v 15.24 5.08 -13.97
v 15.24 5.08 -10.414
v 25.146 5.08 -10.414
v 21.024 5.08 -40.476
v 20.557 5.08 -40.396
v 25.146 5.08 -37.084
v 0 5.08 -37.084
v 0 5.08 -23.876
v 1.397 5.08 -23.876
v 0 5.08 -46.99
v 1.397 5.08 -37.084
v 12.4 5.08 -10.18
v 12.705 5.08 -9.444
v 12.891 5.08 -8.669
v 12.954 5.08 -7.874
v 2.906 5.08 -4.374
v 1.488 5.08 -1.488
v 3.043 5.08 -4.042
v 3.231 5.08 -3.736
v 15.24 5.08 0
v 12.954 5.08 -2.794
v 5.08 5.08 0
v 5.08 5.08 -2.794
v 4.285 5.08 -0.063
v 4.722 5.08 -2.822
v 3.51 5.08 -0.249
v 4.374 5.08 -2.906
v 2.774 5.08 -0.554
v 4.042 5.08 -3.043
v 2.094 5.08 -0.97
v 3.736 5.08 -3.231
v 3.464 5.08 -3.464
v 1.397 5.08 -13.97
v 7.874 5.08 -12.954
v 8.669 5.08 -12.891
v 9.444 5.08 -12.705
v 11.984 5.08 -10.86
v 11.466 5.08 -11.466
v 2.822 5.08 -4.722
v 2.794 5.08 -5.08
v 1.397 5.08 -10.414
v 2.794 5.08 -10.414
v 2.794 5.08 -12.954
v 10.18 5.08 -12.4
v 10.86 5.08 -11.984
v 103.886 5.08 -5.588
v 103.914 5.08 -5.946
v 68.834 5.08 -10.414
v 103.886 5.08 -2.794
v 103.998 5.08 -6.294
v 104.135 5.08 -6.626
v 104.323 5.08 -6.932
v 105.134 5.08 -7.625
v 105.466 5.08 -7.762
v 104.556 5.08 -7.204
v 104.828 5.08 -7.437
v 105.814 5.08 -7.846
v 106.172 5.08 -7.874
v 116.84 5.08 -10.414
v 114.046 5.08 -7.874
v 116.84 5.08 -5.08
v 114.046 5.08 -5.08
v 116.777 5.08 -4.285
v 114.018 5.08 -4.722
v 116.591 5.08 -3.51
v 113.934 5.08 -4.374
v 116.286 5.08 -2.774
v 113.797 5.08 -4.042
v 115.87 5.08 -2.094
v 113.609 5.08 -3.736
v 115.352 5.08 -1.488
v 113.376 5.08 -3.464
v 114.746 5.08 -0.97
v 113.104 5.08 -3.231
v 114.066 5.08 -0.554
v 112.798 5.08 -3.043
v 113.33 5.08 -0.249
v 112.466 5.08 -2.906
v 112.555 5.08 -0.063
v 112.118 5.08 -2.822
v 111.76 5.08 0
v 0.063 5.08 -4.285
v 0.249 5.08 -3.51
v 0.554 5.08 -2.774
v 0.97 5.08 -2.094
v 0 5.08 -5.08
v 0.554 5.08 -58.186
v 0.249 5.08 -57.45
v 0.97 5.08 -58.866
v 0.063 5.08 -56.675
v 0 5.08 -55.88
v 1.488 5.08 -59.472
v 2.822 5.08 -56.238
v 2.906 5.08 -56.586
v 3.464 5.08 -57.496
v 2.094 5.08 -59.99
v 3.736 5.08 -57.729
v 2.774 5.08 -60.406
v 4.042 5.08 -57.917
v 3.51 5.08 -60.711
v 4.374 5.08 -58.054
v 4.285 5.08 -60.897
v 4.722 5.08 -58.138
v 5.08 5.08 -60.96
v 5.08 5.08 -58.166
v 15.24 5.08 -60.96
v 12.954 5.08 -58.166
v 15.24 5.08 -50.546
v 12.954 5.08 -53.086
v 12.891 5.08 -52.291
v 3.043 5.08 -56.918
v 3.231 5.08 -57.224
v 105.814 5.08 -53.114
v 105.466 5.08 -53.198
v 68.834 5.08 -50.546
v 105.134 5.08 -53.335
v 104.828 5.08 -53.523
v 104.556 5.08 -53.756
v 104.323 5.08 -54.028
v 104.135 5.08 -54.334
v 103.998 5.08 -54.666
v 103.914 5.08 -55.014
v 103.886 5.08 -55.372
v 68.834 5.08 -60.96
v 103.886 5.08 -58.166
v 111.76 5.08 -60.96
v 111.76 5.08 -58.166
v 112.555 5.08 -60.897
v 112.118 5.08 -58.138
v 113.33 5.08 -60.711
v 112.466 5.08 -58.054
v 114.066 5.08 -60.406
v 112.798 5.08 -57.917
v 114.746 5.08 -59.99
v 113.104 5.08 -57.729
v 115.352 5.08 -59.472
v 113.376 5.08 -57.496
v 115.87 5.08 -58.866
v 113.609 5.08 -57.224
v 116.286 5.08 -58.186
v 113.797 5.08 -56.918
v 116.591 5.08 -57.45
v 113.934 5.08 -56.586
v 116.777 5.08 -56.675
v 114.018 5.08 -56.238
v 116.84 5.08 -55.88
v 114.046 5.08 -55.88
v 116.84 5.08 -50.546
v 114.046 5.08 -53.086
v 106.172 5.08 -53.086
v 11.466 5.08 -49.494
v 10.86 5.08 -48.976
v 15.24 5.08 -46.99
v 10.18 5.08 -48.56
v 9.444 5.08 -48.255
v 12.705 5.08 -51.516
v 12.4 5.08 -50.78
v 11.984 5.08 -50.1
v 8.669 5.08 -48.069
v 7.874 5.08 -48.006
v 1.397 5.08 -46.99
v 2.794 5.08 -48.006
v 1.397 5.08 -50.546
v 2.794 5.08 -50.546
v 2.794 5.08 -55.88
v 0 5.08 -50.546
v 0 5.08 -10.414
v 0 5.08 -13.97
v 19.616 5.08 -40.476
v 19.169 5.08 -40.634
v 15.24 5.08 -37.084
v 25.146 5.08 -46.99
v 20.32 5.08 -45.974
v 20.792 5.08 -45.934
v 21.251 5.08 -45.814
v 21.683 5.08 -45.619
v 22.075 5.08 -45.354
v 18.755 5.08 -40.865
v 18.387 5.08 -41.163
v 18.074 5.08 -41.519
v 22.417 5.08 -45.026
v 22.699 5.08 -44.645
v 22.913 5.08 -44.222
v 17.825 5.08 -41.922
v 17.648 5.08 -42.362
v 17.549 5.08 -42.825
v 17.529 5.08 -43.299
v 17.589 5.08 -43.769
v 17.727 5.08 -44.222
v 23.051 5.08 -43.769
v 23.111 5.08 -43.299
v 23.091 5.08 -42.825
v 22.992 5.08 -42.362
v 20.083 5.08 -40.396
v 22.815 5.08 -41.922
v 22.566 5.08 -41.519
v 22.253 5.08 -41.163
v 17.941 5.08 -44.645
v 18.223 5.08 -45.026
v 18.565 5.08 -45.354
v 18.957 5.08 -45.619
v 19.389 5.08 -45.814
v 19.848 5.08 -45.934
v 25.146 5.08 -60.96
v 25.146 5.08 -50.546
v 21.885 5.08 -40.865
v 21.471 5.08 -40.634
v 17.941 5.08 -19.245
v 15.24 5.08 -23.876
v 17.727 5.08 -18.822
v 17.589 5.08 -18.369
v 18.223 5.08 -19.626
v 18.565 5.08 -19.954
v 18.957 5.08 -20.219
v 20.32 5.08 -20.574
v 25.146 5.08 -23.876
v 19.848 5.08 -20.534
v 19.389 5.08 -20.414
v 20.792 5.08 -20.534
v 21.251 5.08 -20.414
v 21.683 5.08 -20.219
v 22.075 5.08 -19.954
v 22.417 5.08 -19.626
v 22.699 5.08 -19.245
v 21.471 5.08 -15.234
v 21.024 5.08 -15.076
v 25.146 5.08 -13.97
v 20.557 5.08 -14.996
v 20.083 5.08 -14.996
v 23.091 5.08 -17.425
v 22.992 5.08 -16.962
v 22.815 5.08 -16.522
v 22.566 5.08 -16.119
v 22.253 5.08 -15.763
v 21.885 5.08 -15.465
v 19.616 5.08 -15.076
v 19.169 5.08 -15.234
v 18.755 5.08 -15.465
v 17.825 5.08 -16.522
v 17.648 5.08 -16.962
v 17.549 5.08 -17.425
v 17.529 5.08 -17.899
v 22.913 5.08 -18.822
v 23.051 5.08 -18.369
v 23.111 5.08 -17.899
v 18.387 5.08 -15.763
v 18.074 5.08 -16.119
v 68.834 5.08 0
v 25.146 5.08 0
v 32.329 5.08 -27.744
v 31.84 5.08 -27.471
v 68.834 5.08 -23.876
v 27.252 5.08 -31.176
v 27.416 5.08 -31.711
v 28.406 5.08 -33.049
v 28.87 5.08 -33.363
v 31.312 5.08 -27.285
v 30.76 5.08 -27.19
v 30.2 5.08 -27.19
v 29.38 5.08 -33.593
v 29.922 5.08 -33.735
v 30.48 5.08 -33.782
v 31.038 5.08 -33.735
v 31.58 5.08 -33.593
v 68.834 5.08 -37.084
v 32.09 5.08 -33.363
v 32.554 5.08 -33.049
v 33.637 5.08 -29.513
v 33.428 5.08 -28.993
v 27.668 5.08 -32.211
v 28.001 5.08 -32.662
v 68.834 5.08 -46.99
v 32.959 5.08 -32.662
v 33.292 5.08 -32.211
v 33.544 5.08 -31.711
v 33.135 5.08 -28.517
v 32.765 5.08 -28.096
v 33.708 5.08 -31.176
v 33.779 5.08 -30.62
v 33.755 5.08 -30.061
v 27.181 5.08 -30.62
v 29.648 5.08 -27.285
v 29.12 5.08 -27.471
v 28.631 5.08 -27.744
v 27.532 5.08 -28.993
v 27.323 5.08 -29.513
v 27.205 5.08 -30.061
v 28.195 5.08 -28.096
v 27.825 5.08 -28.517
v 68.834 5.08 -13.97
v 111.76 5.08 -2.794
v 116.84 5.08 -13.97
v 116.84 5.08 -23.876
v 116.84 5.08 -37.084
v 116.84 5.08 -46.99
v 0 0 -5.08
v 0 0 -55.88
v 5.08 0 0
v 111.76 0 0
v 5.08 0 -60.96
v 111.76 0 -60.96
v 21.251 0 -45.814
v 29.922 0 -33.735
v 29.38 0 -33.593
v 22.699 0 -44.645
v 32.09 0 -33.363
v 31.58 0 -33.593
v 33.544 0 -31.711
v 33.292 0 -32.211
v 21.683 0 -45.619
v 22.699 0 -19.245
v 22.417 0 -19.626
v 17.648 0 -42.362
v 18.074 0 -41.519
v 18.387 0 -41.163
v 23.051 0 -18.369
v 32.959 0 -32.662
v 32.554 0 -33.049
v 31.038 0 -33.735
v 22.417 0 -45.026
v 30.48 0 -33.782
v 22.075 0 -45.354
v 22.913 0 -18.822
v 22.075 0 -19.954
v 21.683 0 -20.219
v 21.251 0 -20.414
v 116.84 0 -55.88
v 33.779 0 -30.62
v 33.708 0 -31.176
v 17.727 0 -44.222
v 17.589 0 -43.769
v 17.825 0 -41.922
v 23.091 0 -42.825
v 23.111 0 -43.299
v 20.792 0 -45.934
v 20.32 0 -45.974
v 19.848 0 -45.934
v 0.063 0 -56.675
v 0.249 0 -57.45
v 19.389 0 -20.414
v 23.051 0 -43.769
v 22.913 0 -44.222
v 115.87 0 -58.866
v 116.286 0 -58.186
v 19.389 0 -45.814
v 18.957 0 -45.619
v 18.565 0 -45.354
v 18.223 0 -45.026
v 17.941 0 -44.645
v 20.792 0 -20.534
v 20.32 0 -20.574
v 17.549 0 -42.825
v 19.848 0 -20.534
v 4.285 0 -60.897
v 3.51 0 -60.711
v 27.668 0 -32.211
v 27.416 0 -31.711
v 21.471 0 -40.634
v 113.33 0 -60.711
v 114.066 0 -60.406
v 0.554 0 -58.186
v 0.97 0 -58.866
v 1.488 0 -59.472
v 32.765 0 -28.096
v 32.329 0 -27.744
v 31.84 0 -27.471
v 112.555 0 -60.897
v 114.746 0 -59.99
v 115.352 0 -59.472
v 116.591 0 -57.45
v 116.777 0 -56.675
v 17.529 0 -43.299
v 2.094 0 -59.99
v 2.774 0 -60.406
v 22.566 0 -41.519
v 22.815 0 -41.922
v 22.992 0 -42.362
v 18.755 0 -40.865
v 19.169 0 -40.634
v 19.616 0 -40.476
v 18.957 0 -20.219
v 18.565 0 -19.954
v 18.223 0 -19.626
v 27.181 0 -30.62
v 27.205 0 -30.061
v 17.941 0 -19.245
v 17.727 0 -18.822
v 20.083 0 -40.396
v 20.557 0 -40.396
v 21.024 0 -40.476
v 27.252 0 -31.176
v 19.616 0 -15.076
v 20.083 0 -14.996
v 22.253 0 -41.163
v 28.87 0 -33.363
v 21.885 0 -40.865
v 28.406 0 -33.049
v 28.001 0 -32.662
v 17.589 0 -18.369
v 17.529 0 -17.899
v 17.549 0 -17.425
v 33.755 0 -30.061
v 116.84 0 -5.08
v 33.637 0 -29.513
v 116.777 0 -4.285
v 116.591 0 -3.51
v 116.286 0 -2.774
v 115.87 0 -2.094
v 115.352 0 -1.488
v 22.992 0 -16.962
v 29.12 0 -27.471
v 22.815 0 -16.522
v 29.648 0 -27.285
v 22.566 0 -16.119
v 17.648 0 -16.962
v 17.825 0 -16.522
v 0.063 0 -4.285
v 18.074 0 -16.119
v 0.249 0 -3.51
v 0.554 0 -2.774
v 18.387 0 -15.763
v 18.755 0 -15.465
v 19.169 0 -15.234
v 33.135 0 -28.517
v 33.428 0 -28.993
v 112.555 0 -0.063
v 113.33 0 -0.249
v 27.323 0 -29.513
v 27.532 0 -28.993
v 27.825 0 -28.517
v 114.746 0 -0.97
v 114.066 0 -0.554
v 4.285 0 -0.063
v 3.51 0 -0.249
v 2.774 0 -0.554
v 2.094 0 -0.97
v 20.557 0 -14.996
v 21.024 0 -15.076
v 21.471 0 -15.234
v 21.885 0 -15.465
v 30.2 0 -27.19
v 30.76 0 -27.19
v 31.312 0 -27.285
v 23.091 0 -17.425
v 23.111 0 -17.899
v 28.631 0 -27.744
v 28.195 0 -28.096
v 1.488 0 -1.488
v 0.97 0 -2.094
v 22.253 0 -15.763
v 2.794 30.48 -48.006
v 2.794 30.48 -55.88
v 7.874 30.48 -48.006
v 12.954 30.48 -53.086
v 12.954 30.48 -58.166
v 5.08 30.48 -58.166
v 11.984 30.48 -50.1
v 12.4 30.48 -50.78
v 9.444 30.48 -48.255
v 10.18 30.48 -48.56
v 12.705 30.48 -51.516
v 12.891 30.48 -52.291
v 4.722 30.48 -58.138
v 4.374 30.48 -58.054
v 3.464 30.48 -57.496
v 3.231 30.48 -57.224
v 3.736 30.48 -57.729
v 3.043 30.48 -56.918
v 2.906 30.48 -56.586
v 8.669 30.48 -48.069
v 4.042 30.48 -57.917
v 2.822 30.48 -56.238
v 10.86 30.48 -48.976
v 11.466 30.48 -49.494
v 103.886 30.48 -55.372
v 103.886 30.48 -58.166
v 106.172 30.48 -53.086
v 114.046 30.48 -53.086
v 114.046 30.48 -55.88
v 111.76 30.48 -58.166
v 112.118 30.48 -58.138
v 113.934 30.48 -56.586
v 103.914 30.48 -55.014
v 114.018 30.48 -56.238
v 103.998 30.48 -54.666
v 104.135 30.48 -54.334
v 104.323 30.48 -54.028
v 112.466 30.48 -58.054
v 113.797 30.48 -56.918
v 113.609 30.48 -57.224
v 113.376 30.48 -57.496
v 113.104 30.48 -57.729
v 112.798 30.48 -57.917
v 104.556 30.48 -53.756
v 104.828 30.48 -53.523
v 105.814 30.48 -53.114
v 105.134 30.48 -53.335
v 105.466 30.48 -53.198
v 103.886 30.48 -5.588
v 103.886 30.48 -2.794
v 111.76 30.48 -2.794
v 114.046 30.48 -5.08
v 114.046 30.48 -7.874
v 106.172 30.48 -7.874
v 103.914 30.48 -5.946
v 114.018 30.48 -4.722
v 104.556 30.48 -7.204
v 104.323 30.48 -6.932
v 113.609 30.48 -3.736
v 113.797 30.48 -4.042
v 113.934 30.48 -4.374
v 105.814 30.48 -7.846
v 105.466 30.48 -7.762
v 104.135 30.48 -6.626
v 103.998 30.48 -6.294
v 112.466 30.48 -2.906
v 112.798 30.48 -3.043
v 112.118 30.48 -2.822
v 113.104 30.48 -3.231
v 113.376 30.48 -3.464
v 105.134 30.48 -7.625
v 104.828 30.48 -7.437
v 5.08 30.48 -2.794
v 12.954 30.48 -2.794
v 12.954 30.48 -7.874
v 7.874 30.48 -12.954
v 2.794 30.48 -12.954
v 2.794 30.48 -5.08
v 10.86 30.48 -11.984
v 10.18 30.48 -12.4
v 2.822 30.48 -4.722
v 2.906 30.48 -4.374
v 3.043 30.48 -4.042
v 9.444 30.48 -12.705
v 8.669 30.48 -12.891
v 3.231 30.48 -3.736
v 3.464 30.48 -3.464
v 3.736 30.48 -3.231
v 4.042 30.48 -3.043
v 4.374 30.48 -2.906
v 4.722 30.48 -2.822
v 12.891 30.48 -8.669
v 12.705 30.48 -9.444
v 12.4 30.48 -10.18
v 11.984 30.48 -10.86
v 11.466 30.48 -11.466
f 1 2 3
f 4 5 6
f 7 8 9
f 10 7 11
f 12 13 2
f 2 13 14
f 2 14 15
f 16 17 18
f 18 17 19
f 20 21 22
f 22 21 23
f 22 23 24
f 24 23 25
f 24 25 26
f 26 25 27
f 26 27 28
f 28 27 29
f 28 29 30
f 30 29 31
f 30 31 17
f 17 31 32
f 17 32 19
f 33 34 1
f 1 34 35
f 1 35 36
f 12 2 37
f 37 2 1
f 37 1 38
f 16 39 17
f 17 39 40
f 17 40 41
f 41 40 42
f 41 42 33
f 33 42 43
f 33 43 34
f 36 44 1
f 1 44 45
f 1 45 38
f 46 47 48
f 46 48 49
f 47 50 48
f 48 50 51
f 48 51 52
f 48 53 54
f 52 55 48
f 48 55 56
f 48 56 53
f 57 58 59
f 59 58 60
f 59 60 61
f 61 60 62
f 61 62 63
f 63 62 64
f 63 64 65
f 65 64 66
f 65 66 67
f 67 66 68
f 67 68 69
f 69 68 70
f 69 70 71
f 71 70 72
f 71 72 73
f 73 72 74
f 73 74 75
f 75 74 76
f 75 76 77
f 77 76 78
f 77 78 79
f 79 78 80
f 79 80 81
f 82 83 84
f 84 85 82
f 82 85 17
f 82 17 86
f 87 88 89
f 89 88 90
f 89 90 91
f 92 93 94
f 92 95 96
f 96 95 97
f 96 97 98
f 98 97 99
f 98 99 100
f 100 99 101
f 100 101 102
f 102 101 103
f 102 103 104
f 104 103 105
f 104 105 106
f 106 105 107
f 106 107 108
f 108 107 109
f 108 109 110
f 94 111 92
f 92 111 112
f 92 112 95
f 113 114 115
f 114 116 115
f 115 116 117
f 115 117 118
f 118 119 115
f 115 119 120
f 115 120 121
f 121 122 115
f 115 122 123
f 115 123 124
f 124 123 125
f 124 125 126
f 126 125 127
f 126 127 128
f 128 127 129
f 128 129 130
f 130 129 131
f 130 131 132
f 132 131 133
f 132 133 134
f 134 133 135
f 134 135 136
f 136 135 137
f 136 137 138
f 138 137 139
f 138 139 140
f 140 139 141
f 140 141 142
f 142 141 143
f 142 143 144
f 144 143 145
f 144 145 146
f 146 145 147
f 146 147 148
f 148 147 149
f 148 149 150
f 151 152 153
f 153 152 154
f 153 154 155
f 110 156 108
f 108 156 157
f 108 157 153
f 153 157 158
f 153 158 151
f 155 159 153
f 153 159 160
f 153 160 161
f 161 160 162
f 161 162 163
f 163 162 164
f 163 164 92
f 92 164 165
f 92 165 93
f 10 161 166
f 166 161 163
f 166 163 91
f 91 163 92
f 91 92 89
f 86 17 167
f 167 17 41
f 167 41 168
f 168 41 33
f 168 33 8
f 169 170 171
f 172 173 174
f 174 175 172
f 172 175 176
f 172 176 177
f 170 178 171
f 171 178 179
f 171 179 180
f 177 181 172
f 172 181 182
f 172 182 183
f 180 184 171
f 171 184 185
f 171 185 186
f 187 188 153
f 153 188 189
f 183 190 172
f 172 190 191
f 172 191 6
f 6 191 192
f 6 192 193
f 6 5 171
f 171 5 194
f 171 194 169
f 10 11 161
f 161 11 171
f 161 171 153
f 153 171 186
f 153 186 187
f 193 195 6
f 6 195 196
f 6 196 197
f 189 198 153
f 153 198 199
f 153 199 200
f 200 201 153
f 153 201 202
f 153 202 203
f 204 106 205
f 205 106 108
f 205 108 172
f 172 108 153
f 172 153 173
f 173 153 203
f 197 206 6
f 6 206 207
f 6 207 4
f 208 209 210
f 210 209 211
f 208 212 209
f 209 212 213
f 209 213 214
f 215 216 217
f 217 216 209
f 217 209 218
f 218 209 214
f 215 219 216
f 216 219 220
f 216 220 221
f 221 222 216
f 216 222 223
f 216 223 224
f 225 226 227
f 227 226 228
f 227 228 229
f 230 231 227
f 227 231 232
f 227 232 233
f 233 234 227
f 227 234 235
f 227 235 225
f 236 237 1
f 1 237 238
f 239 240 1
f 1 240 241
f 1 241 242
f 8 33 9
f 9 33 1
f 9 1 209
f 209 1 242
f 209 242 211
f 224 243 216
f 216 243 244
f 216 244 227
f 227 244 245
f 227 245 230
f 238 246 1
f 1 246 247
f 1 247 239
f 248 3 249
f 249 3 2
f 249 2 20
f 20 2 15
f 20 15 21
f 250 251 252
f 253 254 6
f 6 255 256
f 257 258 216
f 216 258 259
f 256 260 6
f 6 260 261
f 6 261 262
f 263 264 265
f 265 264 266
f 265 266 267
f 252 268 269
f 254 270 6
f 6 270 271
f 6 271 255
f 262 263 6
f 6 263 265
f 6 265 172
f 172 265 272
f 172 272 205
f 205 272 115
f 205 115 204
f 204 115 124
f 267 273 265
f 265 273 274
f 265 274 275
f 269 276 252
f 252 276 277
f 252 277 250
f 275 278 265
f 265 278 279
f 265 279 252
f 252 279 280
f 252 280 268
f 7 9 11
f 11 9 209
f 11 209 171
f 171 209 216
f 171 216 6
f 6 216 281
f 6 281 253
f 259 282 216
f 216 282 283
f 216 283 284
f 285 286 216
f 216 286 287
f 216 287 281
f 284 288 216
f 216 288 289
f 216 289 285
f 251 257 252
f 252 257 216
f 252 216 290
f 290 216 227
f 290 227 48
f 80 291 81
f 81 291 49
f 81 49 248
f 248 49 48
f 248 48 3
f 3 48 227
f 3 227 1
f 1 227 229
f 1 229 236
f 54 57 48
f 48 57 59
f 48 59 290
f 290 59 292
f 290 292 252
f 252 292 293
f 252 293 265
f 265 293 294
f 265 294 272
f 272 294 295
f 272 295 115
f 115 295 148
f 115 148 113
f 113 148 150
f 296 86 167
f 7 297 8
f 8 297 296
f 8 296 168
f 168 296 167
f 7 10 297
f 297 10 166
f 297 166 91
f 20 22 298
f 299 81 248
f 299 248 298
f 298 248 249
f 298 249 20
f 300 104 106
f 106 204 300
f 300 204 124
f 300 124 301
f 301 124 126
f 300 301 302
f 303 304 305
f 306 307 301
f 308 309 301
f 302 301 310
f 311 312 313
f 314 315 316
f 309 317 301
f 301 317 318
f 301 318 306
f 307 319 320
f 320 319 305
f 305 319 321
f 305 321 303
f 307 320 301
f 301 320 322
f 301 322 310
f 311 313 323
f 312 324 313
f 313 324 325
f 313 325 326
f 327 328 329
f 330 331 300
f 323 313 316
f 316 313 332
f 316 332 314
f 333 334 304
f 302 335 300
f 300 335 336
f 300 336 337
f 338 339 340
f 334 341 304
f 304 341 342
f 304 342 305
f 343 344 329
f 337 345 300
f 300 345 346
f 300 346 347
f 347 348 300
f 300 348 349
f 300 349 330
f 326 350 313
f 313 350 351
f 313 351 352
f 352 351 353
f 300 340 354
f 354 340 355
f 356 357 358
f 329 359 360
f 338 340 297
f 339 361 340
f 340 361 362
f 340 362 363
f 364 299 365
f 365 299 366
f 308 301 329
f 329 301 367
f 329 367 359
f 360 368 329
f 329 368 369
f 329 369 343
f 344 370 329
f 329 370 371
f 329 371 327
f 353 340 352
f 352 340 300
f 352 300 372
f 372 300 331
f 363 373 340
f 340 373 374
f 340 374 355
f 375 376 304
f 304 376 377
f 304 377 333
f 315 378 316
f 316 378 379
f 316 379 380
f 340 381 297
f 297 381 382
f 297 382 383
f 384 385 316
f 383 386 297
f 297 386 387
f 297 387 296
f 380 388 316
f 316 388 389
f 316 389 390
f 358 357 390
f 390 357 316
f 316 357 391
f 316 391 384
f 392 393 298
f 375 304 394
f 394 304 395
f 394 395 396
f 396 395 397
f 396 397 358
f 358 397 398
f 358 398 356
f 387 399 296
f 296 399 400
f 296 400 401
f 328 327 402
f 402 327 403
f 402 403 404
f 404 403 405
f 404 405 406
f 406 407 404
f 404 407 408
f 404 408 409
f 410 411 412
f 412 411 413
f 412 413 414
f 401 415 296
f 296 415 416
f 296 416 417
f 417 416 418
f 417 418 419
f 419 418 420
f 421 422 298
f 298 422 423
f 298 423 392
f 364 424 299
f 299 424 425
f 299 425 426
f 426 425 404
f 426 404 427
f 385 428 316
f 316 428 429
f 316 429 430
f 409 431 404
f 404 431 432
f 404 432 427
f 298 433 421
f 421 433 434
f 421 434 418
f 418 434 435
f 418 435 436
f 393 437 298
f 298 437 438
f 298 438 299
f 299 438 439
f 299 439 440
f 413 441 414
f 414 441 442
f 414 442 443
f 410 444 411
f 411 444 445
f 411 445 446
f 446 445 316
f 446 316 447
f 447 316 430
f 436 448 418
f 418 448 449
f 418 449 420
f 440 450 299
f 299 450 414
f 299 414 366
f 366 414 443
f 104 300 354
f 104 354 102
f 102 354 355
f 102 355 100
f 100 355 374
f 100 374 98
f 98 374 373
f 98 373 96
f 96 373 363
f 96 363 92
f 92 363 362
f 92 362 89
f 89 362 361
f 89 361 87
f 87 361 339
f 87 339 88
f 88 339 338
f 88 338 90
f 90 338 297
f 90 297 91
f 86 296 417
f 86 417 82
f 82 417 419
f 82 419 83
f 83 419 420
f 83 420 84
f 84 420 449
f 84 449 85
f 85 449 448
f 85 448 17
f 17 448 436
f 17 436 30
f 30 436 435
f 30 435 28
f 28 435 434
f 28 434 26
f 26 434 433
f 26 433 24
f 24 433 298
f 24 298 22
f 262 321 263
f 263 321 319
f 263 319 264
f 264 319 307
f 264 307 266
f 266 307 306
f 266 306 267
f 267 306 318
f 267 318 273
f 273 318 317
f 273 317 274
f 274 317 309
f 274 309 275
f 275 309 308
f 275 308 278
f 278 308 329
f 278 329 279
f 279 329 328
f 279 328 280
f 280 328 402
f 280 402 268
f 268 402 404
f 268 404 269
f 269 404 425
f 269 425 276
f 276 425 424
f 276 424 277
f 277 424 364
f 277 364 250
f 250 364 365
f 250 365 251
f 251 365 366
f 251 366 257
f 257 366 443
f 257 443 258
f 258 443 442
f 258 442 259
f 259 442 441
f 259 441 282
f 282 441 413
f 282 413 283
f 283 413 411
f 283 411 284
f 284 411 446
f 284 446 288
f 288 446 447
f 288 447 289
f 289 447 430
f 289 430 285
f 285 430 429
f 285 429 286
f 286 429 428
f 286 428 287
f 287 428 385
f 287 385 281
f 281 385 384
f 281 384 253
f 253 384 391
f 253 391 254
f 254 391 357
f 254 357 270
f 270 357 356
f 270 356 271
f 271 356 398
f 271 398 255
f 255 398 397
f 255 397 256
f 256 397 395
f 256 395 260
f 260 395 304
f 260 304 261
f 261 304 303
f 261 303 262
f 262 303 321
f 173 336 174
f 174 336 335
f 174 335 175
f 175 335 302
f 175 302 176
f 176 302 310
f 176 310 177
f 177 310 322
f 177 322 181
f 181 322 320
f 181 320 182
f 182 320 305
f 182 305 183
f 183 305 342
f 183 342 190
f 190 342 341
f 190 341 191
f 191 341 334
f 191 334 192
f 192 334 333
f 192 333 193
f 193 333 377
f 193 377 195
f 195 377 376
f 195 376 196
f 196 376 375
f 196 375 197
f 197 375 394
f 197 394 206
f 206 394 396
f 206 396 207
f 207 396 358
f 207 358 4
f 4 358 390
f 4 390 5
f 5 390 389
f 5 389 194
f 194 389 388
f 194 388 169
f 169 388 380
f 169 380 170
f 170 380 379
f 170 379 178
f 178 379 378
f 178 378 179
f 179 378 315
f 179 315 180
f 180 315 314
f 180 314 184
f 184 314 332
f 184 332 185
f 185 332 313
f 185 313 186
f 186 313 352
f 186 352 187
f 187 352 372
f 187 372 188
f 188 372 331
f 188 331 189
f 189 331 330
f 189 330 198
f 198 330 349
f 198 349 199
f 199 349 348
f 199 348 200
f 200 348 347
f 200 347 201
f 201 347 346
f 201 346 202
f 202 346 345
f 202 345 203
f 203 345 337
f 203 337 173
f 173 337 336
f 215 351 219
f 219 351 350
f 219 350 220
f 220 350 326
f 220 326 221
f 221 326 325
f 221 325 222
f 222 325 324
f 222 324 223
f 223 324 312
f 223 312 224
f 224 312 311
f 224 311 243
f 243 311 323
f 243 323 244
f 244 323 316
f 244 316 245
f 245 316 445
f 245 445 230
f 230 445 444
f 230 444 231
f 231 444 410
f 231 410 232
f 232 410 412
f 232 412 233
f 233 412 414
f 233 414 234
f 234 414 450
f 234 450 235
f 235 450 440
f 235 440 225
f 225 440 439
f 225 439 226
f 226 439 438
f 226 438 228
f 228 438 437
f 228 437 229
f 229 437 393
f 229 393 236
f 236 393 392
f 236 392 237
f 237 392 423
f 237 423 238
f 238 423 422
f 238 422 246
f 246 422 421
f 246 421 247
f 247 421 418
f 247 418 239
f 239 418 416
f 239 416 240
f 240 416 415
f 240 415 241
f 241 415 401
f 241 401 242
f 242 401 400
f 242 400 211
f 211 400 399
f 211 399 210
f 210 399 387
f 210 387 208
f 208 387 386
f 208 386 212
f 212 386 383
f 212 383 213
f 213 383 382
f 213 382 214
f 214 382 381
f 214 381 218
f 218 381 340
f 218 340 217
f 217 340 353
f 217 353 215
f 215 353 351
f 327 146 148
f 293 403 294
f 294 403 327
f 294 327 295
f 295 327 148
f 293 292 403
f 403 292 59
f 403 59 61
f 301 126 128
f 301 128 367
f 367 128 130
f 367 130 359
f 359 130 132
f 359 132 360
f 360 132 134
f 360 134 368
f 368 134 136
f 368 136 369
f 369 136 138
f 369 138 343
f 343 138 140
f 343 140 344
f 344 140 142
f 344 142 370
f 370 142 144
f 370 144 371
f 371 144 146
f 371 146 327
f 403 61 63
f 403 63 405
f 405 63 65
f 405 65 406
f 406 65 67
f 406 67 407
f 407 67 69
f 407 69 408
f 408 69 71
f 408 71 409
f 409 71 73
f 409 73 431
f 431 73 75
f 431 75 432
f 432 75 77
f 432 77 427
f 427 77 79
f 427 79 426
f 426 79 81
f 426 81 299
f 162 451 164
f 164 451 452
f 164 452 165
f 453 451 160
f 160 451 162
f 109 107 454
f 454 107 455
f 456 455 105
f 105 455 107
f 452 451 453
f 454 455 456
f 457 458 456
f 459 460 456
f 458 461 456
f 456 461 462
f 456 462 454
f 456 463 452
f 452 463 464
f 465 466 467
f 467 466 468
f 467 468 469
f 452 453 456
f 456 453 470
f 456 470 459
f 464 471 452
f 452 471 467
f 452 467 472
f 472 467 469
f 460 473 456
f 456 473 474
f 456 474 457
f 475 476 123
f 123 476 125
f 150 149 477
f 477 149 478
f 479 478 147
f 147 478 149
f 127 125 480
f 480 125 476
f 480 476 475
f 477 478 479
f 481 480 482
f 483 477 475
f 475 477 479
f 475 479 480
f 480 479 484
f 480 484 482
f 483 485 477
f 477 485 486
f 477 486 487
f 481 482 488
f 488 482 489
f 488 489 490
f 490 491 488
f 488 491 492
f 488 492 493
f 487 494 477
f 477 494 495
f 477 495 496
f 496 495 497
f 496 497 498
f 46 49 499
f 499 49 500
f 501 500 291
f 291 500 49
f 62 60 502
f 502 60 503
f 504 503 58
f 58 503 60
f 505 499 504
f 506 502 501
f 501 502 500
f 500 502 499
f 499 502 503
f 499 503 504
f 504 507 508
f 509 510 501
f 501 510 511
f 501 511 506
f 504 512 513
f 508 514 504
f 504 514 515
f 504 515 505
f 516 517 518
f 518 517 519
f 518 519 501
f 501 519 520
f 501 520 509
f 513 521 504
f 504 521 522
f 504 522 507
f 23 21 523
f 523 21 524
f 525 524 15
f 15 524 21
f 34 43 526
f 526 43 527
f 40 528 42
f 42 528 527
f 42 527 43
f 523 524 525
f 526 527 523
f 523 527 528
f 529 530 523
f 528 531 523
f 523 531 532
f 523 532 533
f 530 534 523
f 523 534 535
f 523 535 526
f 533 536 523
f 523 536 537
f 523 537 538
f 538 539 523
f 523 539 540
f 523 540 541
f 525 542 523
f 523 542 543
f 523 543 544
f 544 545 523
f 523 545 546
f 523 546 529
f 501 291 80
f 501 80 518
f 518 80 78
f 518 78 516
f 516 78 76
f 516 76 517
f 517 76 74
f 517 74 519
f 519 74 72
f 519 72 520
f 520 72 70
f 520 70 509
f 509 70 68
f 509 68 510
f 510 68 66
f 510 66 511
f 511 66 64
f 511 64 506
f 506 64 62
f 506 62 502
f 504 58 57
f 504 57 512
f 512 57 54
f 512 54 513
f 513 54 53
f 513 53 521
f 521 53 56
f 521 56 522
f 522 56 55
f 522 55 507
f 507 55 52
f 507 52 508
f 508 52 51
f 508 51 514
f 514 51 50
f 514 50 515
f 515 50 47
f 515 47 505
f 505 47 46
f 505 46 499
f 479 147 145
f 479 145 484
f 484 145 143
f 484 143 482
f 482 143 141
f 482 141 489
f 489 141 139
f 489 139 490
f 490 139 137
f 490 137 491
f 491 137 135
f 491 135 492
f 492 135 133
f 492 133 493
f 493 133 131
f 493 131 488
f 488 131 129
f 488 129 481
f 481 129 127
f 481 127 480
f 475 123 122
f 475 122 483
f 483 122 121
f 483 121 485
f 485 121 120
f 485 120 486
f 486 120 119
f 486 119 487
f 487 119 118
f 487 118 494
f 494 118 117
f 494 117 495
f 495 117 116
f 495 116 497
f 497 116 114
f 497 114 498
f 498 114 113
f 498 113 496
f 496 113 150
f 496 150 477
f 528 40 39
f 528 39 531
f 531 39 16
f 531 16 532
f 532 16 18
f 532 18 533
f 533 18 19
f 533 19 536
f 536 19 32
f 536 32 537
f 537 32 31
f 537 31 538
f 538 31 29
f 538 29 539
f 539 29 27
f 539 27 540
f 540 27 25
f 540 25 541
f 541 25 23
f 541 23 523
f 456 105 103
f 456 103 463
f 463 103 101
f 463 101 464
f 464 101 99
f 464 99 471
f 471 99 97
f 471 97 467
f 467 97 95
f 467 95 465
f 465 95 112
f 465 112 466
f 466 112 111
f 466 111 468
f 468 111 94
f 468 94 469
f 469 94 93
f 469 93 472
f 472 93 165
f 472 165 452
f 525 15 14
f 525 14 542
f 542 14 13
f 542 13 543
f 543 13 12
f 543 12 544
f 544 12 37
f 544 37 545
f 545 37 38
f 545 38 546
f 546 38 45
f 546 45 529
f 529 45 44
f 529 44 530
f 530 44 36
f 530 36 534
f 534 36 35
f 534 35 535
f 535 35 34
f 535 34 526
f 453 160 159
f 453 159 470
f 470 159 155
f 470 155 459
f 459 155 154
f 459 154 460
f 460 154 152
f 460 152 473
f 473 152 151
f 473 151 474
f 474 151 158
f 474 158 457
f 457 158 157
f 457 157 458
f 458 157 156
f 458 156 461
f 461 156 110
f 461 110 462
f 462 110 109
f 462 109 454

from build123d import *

# Parameters (mm, degrees)
SKETCH1_W           = 111.76
SKETCH1_H           = 60.96
BOSS_EXTRUDE1_DEPTH = 5.08
FILLET1_R           = 5.08
CUT_EXTRUDE1_REACH  = 129.406
SKETCH3_R           = 2.794
SKETCH3_R_2         = 3.302
SKETCH5_W           = 10.16
SKETCH5_H           = 60.96
BOSS_EXTRUDE2_DEPTH = 5.08
FILLET2_R           = 5.08
SKETCH2_W           = 10.16
SKETCH2_H           = 10.16
SKETCH2_H_2         = 5.08
BOSS_EXTRUDE5_DEPTH = 25.4
FILLET9_R           = 2.286
FILLET10_R          = 5.08


with BuildPart() as part:
    # Sketch1 → Boss-Extrude1 (new body)
    with BuildSketch(Plane(origin=(0, 0, 0), x_dir=(1, 0, 0), z_dir=(0, 1, 0))):
        with Locations((55.88, 30.48)):
            Rectangle(SKETCH1_W, SKETCH1_H)
    extrude(amount=BOSS_EXTRUDE1_DEPTH)

    # Fillet1
    fillet1_edges = [part.edges().sort_by_distance(p)[0] for p in [
        (0, 2.54, -60.96),
        (111.76, 2.54, -60.96),
        (111.76, 2.54, 0),
        (0, 2.54, 0),
    ]]
    fillet(fillet1_edges, radius=FILLET1_R)

    # Sketch3 → Cut-Extrude1 (cut, up to next)
    with BuildSketch(Plane.XZ, mode=Mode.PRIVATE) as cut_extrude1_sk1:
        with Locations(Location((20.32, -17.78, 0), (0, 0, 270))):
            Circle(SKETCH3_R)
    cut_extrude1_tool1 = extrude(cut_extrude1_sk1.sketch, amount=-CUT_EXTRUDE1_REACH, mode=Mode.PRIVATE) & part.part
    # Sketch3 → Cut-Extrude1 (cut, up to next)
    with BuildSketch(Plane.XZ, mode=Mode.PRIVATE) as cut_extrude1_sk2:
        with Locations(Location((20.32, -43.18, 0), (0, 0, 270))):
            Circle(SKETCH3_R)
    cut_extrude1_tool2 = extrude(cut_extrude1_sk2.sketch, amount=-CUT_EXTRUDE1_REACH, mode=Mode.PRIVATE) & part.part
    # Sketch3 → Cut-Extrude1 (cut, up to next)
    with BuildSketch(Plane.XZ, mode=Mode.PRIVATE) as cut_extrude1_sk3:
        with Locations(Location((30.48, -30.48, 0), (0, 0, 270))):
            Circle(SKETCH3_R_2)
    cut_extrude1_tool3 = extrude(cut_extrude1_sk3.sketch, amount=-CUT_EXTRUDE1_REACH, mode=Mode.PRIVATE) & part.part
    add(cut_extrude1_tool1.solids().sort_by_distance((20.32, 0, -17.78))[0], mode=Mode.SUBTRACT)
    add(cut_extrude1_tool2.solids().sort_by_distance((20.32, 0, -43.18))[0], mode=Mode.SUBTRACT)
    add(cut_extrude1_tool3.solids().sort_by_distance((30.48, 0, -30.48))[0], mode=Mode.SUBTRACT)

    # Sketch5 → Boss-Extrude2 (add)
    with BuildSketch(Plane.XZ):
        with Locations((111.76, -30.48)):
            Rectangle(SKETCH5_W, SKETCH5_H)
    extrude(amount=-BOSS_EXTRUDE2_DEPTH)

    # Fillet2
    fillet2_edges = [part.edges().sort_by_distance(p)[0] for p in [
        (116.84, 2.54, 0),
        (116.84, 2.54, -60.96),
    ]]
    fillet(fillet2_edges, radius=FILLET2_R)

    # Sketch2 → Boss-Extrude5 (add)
    with BuildSketch(Plane(origin=(0, 5.08, 0), x_dir=(1, 0, 0), z_dir=(0, 1, 0))):
        with Locations((7.874, 53.086)):
            Rectangle(SKETCH2_W, SKETCH2_H)
        with Locations((7.874, 7.874)):
            Rectangle(SKETCH2_W, SKETCH2_H)
        with Locations((108.966, 55.626)):
            Rectangle(SKETCH2_W, SKETCH2_H_2)
        with Locations((108.966, 5.334)):
            Rectangle(SKETCH2_W, SKETCH2_H_2)
    extrude(amount=BOSS_EXTRUDE5_DEPTH)

    # Fillet9
    fillet9_edges = [part.edges().sort_by_distance(p)[0] for p in [
        (103.886, 17.78, -7.874),
        (114.046, 17.78, -2.794),
        (2.794, 17.78, -2.794),
        (2.794, 17.78, -58.166),
        (103.886, 17.78, -53.086),
        (114.046, 17.78, -58.166),
    ]]
    fillet(fillet9_edges, radius=FILLET9_R)

    # Fillet10
    fillet10_edges = [part.edges().sort_by_distance(p)[0] for p in [
        (12.954, 17.78, -12.954),
        (12.954, 17.78, -48.006),
    ]]
    fillet(fillet10_edges, radius=FILLET10_R)


solid = part.part
